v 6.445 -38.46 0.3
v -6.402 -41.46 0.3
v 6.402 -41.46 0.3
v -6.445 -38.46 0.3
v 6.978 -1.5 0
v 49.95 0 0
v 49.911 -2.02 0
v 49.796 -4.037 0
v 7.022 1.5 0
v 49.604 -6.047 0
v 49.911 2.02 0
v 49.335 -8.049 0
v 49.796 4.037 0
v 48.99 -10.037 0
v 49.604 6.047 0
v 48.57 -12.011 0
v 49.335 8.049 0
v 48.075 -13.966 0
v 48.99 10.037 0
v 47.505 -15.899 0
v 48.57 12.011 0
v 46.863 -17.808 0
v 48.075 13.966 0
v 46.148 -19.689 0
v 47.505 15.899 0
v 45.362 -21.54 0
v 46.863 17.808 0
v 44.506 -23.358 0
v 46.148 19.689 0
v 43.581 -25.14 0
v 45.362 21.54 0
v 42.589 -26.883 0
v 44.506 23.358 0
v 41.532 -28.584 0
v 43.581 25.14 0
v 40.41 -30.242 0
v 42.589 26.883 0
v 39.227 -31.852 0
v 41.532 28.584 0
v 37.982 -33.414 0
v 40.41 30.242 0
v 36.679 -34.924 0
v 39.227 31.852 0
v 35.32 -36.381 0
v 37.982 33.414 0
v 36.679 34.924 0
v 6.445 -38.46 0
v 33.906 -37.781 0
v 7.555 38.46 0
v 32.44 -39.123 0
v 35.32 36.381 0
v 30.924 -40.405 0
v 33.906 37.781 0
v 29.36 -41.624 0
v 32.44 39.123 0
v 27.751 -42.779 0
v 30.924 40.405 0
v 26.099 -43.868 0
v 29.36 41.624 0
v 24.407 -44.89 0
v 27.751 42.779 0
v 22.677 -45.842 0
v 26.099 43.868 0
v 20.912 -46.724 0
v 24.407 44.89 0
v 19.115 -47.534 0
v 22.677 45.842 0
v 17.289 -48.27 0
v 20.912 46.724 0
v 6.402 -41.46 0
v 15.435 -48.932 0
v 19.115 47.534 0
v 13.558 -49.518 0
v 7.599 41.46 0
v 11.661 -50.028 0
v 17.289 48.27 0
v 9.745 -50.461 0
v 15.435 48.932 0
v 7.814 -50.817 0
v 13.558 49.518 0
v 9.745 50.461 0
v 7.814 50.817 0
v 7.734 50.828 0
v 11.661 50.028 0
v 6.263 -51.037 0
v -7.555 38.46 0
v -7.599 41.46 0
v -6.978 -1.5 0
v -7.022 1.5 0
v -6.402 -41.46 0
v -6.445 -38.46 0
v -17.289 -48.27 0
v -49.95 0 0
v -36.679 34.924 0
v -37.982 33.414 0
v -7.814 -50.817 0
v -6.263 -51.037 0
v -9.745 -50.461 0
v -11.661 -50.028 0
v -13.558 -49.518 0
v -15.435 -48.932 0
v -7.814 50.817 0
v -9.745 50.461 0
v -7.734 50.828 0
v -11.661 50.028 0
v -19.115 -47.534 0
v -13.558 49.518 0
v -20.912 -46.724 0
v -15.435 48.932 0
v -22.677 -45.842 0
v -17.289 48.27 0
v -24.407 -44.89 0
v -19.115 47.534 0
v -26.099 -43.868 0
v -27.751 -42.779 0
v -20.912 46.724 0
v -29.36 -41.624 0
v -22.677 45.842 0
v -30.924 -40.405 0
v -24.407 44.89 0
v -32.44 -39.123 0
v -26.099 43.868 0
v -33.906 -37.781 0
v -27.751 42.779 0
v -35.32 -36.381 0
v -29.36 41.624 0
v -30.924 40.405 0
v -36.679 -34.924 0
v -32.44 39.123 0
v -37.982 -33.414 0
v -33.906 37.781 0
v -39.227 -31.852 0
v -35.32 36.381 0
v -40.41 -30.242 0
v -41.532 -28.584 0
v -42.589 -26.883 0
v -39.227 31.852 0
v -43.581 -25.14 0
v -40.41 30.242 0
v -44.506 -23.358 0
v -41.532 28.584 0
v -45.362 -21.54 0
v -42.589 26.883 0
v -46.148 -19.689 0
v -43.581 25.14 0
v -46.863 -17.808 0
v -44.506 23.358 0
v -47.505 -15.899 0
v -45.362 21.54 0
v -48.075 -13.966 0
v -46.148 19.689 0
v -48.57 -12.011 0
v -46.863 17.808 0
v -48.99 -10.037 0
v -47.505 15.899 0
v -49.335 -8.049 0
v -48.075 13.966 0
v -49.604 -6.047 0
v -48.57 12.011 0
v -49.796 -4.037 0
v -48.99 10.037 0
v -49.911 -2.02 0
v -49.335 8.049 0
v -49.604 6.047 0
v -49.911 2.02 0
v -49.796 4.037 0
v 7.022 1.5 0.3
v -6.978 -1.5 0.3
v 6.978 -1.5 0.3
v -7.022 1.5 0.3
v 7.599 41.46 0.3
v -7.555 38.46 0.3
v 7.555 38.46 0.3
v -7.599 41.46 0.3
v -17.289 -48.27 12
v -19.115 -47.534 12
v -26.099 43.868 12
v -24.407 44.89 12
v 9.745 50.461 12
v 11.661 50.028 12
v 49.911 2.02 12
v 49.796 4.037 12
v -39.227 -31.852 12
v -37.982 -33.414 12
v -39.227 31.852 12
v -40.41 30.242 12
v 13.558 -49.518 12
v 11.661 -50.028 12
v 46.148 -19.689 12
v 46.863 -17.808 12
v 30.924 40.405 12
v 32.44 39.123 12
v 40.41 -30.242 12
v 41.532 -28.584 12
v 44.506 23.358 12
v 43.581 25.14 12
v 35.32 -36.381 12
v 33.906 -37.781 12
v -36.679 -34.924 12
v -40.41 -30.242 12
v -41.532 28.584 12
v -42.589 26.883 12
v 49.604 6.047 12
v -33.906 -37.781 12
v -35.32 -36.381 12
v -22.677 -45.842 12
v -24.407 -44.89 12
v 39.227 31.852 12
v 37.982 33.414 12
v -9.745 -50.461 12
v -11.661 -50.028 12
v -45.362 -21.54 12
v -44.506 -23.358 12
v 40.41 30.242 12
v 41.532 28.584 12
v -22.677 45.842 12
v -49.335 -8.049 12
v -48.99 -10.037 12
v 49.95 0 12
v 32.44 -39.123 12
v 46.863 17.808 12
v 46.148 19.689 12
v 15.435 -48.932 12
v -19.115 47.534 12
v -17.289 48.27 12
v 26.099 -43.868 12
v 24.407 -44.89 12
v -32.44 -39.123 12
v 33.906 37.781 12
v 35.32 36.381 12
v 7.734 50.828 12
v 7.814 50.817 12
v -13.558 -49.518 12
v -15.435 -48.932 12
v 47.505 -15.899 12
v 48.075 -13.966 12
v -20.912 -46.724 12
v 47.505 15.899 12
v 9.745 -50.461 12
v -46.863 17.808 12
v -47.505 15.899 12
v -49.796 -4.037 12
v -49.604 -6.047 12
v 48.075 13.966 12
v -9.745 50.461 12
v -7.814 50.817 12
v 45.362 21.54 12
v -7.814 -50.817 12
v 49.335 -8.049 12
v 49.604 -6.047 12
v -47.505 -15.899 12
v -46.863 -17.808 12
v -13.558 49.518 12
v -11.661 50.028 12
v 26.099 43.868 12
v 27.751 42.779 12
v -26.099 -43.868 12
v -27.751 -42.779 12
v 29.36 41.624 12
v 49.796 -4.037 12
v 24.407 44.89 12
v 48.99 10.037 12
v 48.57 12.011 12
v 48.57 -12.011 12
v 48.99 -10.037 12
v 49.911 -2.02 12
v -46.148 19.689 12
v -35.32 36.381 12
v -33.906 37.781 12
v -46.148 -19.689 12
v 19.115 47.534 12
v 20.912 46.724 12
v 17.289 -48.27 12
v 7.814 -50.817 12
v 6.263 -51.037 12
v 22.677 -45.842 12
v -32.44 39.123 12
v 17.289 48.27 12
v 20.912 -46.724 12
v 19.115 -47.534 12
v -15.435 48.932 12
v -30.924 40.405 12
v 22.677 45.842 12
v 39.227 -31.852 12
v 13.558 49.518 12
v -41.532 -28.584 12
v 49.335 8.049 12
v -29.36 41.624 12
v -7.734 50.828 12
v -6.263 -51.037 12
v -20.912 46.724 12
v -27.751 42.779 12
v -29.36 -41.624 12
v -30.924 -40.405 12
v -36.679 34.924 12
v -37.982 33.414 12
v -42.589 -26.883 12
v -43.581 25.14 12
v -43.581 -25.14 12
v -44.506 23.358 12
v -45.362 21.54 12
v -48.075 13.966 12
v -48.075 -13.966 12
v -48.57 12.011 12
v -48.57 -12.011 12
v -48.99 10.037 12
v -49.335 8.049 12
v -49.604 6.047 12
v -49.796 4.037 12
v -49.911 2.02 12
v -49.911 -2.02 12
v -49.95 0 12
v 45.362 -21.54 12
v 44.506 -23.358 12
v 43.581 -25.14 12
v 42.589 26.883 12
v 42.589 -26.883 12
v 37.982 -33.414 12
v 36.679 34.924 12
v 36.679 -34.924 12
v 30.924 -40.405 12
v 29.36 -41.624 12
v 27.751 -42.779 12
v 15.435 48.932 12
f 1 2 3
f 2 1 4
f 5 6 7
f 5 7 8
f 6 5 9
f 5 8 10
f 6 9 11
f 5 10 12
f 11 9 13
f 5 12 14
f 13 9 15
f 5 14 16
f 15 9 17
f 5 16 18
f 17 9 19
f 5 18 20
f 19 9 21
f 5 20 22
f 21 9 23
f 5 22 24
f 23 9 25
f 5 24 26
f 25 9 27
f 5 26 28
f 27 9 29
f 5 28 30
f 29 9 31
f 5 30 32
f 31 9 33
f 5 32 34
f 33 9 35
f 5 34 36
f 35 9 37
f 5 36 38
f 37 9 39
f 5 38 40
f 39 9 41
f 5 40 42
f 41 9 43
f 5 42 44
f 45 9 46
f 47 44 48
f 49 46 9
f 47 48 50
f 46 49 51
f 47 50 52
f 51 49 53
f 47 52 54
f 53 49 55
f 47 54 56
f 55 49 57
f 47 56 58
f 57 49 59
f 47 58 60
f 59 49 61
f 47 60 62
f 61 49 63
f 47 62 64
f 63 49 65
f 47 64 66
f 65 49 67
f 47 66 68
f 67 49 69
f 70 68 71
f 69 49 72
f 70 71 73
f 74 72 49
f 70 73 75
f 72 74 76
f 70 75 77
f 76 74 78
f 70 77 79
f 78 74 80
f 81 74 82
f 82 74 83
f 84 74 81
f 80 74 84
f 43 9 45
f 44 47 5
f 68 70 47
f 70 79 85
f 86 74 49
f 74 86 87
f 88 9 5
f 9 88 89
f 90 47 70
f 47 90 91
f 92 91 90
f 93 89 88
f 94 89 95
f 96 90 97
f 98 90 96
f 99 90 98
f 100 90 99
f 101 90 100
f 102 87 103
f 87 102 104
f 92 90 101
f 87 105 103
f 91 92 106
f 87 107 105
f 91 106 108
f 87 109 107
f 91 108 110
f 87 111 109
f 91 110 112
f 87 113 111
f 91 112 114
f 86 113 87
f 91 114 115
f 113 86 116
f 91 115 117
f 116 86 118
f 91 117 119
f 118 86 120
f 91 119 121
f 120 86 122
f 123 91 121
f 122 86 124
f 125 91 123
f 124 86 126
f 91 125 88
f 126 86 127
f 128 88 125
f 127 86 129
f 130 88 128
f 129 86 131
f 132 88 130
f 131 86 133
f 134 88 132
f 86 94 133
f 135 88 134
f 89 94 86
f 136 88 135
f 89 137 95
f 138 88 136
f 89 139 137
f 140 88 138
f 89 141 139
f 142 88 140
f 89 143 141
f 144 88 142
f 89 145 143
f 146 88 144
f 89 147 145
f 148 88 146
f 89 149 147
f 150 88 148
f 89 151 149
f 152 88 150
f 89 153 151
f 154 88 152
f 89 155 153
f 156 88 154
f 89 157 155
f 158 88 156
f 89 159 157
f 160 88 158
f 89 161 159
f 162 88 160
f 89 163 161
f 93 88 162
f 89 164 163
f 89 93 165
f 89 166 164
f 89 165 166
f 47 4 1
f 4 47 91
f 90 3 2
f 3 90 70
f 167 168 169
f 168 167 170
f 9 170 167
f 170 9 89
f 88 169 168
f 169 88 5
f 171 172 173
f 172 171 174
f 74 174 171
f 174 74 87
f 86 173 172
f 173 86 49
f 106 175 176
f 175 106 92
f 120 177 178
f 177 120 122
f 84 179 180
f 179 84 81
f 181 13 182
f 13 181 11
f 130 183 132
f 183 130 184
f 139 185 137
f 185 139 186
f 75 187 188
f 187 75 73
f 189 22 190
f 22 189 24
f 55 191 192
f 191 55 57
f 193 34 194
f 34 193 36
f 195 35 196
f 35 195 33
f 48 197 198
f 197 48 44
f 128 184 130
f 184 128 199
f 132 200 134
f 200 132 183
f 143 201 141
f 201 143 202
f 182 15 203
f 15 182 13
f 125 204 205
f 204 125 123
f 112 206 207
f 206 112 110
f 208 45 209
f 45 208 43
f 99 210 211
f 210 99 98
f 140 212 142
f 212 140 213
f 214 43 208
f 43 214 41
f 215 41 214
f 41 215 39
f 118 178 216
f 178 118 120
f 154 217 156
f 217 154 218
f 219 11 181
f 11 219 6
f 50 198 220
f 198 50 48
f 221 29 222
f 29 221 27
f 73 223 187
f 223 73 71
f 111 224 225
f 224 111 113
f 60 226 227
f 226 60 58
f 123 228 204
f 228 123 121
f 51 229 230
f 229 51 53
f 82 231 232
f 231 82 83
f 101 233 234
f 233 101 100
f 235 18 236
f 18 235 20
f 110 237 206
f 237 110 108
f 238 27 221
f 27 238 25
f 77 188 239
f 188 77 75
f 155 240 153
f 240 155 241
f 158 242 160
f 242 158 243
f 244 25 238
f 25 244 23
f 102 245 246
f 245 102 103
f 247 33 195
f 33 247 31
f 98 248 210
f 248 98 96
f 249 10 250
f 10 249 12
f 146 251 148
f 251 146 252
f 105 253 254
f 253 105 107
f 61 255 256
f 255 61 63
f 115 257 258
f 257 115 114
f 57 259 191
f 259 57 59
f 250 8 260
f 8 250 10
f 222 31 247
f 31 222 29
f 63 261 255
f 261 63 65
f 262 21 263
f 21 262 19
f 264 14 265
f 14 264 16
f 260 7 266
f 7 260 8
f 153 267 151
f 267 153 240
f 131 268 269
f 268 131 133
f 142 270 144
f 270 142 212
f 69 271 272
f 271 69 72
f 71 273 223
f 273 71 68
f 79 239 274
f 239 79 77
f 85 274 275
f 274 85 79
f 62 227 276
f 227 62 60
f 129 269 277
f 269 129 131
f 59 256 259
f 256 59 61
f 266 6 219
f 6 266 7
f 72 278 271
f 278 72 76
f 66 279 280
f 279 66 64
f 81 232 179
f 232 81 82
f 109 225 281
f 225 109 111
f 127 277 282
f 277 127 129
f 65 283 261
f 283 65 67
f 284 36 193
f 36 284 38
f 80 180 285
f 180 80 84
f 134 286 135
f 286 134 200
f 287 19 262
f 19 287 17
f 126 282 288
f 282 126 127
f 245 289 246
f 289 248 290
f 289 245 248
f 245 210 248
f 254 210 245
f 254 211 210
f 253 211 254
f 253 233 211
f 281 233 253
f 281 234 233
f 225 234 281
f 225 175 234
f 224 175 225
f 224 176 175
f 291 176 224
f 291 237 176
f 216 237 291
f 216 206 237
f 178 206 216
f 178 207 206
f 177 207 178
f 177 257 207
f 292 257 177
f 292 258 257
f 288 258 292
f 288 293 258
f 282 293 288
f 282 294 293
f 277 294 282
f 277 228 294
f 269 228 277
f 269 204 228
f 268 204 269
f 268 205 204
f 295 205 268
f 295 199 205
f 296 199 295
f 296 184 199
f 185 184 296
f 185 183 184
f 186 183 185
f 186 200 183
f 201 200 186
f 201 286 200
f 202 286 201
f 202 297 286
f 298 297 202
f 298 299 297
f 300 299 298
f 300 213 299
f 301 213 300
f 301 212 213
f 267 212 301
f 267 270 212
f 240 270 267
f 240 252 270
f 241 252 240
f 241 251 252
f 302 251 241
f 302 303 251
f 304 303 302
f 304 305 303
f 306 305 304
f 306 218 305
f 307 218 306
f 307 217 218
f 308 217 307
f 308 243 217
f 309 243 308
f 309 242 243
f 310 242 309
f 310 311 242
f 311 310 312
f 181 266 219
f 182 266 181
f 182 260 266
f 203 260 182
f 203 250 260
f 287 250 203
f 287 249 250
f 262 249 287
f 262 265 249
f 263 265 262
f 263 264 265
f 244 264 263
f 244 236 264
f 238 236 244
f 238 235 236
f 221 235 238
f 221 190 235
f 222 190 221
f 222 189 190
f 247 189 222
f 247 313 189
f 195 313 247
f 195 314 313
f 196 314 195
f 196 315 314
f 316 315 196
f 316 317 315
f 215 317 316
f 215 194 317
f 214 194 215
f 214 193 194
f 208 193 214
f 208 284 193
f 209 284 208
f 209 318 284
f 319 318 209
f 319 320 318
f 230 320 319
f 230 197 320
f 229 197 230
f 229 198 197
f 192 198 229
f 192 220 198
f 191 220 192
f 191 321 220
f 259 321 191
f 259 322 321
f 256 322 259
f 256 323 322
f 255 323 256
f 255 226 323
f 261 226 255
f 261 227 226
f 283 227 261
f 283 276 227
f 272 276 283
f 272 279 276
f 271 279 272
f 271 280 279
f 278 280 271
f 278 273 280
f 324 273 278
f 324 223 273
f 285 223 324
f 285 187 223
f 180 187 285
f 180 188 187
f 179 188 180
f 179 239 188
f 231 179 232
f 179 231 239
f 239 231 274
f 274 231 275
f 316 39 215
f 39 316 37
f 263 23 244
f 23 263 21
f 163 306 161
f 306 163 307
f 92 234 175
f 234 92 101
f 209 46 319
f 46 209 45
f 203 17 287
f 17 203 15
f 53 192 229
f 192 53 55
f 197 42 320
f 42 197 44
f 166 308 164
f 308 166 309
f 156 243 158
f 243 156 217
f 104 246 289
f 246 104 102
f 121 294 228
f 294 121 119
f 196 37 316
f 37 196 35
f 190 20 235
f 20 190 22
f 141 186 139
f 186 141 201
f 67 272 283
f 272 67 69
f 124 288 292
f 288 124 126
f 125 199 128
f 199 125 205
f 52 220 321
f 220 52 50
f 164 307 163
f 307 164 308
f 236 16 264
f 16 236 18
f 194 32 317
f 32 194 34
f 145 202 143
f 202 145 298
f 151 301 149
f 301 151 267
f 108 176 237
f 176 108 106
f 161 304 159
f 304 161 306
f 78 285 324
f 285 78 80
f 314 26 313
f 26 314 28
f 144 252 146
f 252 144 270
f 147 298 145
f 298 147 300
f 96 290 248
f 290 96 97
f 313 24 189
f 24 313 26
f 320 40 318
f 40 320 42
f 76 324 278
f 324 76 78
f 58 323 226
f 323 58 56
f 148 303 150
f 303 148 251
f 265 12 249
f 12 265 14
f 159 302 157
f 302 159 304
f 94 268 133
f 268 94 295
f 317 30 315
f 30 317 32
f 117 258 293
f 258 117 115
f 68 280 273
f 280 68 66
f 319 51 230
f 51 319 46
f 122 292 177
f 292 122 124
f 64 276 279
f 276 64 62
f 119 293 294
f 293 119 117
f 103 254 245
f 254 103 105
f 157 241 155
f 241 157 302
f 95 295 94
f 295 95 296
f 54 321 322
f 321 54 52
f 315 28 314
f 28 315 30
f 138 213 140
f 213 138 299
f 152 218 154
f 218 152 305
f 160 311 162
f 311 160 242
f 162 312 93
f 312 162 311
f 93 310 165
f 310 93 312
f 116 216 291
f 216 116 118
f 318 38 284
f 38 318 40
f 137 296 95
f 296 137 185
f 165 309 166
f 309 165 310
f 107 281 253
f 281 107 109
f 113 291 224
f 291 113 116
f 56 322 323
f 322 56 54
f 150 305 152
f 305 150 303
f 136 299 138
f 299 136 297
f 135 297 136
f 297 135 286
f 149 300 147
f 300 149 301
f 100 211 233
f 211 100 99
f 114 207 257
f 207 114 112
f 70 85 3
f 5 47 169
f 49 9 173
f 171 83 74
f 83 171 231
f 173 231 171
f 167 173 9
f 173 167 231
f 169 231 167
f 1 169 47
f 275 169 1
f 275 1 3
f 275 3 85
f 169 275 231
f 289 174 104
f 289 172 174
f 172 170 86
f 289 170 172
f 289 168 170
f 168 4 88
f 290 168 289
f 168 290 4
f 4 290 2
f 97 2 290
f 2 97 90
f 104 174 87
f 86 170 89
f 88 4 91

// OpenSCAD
WIDTH = /*             */ 100 -.1;
LENGTH = /*            */ 103 -.1;
HEIGHT = /*              */ 5+7;

FRONT_SLIT = /*         */ 12.5;
BACK_SLIT = /*          */ 15.5;

$fn = $preview ? 60 : 160;
ATOM = 0.01;
PLAY = .35;

module cylinder0(factor = 0, height = 0, l = LENGTH, w = WIDTH) {
    h = factor ? HEIGHT * factor : height;
    resize([ w, l, h ]) cylinder(d = 10, h = 1);
}

module base() {
    difference() {
        cylinder0(factor = 1);

        hull() {
            translate([ 0, -LENGTH / 2 -.5, 0])
            cube([ FRONT_SLIT, ATOM, HEIGHT*3 ], center = true);

            translate([ 0, LENGTH / 2 +.5, 0])
            cube([ BACK_SLIT, ATOM, HEIGHT*3 ], center = true);
        }
    }
    
    for (k=[-.4, 0, .4])
        translate([-LENGTH/4, -1.5 + WIDTH*k, 0])
        cube([LENGTH/2, 3, .3]);
}

module concrete() {
    translate([ 0, 0, HEIGHT ])
    difference() {
        cylinder0(height = 96);

        // slanted top
        translate([ 0, LENGTH / 2, 96 ])
        rotate([ 38, 0, 0 ])
        translate([ 0, -LENGTH / 2, 0 ])
        cylinder(d = LENGTH * 4, h = 100);
    }
}

module stand_holder() {
    difference() {
        base();
//        channel();
    }
}

%concrete();
stand_holder();
